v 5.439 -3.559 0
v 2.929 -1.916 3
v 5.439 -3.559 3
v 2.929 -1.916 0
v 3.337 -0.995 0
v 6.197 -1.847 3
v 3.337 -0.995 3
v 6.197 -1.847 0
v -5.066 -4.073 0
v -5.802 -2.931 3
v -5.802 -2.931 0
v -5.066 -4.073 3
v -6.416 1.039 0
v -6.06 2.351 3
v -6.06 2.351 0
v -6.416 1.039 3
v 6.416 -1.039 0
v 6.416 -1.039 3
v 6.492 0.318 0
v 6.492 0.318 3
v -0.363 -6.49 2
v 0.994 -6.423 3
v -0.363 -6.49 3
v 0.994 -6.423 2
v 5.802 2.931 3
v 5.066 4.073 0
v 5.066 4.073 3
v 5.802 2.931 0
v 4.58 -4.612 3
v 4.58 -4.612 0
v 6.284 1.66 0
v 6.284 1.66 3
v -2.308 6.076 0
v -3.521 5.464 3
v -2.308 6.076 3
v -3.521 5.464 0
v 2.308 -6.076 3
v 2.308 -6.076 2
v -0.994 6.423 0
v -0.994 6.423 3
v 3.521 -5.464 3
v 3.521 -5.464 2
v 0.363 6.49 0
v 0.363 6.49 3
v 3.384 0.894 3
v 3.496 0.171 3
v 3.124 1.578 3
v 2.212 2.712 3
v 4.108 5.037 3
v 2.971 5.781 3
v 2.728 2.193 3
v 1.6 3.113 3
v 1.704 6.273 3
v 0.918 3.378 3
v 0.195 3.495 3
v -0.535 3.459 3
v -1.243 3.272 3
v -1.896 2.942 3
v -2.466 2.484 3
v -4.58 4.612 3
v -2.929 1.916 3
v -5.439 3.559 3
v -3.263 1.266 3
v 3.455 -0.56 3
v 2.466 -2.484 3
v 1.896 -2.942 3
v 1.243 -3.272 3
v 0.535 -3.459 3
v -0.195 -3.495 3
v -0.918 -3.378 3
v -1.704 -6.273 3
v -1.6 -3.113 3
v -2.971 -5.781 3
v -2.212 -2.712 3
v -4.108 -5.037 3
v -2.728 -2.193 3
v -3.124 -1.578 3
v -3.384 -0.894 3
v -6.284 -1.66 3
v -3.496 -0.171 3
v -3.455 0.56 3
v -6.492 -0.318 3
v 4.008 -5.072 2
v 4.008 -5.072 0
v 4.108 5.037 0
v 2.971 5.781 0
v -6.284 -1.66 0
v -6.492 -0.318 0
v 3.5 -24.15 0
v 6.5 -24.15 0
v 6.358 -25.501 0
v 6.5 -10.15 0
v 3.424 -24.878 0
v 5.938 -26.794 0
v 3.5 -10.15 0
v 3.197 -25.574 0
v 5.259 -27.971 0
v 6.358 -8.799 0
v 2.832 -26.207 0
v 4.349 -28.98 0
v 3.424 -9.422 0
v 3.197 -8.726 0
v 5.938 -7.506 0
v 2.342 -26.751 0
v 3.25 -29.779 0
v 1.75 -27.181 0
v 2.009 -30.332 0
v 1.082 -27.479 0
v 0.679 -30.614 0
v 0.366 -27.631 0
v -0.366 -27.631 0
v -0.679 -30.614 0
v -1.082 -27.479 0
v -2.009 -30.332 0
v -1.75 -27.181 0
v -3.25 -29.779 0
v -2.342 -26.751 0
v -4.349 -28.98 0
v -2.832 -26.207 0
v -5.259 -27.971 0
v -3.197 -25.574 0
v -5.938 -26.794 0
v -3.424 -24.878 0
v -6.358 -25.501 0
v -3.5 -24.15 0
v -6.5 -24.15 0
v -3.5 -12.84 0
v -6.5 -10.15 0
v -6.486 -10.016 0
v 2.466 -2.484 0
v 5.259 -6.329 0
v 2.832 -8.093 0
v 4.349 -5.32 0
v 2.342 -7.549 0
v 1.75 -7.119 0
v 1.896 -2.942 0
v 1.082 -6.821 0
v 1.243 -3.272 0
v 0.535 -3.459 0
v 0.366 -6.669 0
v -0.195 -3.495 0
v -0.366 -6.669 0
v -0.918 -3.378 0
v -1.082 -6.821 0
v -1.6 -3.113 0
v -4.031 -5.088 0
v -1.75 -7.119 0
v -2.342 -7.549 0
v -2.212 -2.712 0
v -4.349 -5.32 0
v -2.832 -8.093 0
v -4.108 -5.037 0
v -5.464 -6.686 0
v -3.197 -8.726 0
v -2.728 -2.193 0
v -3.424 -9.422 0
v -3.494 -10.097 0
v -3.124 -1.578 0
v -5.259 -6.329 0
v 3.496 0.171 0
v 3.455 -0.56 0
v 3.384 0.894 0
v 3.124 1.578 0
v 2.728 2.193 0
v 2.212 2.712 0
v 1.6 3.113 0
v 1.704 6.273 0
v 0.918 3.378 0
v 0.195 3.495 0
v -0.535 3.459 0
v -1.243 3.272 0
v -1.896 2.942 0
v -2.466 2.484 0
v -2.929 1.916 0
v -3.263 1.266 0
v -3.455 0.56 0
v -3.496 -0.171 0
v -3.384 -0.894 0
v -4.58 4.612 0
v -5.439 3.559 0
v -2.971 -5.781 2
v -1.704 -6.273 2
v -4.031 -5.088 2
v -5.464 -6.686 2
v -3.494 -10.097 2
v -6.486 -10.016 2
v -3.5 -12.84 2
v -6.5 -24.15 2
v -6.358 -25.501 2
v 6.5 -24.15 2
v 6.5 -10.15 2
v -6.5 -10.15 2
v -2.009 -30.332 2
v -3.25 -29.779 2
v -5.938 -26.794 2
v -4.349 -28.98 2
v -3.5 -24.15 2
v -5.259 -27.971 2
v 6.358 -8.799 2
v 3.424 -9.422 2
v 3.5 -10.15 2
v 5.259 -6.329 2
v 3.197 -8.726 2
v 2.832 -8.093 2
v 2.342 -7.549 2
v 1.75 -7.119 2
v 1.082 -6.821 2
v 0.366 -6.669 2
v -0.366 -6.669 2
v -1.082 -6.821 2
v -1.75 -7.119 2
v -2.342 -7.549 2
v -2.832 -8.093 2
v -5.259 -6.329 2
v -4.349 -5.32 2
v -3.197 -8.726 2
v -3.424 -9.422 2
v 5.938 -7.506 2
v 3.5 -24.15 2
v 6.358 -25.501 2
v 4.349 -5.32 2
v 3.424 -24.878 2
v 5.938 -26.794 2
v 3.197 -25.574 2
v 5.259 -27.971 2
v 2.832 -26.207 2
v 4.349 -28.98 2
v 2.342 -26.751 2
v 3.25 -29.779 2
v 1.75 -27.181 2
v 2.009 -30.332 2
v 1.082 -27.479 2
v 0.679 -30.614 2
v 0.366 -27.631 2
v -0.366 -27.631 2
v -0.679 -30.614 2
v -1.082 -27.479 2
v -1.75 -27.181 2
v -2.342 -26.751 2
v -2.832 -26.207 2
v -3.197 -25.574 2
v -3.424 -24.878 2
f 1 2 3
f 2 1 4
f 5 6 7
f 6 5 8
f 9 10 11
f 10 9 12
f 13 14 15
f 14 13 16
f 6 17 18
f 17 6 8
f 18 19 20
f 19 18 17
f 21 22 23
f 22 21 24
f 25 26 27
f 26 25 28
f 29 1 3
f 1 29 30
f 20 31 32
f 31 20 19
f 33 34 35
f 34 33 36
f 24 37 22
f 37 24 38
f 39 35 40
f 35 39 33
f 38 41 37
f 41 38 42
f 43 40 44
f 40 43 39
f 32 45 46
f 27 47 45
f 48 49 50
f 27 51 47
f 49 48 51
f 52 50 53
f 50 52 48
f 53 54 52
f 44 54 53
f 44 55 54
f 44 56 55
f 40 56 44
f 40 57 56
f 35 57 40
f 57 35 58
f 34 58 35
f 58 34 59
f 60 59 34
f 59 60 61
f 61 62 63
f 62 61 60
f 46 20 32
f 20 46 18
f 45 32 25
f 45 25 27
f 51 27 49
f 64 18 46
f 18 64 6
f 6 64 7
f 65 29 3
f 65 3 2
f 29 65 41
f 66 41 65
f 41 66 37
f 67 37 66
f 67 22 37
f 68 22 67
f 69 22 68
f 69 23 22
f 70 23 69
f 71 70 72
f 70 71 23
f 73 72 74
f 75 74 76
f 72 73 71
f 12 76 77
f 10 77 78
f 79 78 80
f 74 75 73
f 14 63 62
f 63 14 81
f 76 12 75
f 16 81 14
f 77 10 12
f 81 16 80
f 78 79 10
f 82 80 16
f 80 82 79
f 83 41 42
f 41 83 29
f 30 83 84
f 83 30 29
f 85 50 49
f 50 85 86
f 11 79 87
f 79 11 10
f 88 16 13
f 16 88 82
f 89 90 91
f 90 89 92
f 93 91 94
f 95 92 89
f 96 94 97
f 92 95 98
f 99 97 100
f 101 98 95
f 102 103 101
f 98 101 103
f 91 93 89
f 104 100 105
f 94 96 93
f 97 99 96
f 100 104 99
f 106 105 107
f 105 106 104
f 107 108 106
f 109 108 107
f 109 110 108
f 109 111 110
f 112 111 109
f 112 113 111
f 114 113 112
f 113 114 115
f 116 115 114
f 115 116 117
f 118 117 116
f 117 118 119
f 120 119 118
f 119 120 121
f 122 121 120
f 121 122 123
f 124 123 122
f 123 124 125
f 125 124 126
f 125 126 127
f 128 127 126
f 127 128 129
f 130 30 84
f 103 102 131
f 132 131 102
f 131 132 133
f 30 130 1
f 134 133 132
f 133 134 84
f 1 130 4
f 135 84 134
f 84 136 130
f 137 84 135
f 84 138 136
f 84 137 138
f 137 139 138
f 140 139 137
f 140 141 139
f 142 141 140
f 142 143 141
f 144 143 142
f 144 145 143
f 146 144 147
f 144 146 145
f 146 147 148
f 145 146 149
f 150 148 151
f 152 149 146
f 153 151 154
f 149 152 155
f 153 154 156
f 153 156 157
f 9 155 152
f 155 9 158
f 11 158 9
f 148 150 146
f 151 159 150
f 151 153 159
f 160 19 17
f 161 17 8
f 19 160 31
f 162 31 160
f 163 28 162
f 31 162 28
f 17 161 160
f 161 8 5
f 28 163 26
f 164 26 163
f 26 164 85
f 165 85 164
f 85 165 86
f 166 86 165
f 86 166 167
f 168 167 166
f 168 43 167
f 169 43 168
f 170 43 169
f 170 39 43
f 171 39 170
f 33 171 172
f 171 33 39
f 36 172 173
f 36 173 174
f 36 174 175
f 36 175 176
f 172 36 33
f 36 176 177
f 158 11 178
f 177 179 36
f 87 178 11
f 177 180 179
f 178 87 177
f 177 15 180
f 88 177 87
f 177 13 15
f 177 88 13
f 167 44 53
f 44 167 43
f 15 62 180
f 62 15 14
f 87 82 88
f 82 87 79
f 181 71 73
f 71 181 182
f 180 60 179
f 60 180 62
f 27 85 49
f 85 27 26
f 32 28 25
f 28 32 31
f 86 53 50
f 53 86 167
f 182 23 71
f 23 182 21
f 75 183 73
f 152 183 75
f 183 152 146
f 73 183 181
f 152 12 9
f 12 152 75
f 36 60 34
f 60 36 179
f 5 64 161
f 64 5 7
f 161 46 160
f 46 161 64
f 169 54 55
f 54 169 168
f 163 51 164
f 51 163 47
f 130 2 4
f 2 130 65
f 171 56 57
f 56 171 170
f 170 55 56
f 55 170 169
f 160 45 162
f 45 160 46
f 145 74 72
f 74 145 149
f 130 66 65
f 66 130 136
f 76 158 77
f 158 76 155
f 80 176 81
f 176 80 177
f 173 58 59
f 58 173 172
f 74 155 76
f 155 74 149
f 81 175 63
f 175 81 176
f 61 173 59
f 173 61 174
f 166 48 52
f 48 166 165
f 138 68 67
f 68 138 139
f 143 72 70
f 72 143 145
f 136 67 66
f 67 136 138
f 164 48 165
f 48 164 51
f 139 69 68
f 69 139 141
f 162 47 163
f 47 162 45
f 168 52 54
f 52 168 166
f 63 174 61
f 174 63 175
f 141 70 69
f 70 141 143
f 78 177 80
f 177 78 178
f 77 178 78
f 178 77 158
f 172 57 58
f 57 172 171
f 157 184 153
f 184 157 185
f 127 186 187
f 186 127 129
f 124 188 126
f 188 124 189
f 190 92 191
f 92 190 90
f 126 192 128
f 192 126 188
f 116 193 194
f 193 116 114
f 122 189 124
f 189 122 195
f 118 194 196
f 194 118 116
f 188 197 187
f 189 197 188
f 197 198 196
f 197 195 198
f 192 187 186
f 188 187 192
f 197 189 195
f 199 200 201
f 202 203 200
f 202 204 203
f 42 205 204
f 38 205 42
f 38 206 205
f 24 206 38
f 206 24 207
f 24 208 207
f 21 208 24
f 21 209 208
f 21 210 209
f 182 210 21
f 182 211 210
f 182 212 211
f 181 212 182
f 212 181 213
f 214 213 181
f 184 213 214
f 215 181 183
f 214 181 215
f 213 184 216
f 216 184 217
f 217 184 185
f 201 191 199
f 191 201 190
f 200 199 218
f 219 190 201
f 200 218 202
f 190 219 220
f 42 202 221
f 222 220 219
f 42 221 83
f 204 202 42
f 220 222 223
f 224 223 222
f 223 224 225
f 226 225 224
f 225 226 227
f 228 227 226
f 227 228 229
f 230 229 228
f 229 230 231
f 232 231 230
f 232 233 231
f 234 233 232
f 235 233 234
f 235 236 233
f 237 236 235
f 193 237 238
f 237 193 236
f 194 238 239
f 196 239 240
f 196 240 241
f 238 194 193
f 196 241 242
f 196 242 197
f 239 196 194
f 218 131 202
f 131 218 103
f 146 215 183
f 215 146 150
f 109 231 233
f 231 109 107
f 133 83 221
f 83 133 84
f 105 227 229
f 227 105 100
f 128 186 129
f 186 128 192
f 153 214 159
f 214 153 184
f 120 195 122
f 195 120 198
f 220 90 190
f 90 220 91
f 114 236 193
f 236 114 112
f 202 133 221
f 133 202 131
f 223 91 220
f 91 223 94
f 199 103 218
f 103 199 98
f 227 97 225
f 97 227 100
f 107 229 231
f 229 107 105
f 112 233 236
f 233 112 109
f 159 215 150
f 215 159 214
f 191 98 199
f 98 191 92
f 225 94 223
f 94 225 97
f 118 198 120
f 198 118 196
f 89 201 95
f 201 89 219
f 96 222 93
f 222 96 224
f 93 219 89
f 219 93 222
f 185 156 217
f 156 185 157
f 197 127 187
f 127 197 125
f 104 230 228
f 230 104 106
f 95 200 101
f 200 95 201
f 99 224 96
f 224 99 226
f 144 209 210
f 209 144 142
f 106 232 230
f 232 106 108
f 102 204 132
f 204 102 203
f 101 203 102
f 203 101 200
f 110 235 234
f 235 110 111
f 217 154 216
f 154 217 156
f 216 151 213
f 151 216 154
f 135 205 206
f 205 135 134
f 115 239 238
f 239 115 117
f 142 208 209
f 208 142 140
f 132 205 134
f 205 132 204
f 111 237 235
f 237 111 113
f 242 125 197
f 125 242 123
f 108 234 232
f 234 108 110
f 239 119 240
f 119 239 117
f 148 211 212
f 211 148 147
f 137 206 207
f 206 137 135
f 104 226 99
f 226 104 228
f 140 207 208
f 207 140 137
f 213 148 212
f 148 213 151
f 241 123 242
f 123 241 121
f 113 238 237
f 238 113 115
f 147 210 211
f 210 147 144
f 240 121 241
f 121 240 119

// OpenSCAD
inner_diameter =  7;
outer_diameter = 13;
gap            = 16.6; //degrees
thickness      =  2;
thickness2     =  3;
length         = 21;
width          = 10;
$fn            = 30;


module wedge(diameter, height, degrees) {
    difference() {
        cylinder( d = diameter, h = height );
        translate([-0.5*diameter, -diameter, -height])
            cube([ diameter, diameter, 3*height ]);
        rotate([0, 0, degrees-90])
            translate([-4*diameter, -2*diameter, -height])
            cube([ 4*diameter, 4*diameter, 3*height ]);
    }
}

module ellipse( diameter, length, thickness ) {
    hull() {
        translate([ 0, 0, 0])
        cylinder(d = diameter, h = thickness);
    translate([ 0, length, 0])
        cylinder(d = diameter, h = thickness);
    }    
}

module hook1() {
    rotate([0, 0, -2*gap])
    difference() {
        cylinder( d = outer_diameter, h = thickness2 );
        translate([0, 0, -thickness2])
            cylinder( d = inner_diameter, h = 3*thickness2 );
        translate([0, 0, -1])
            wedge(2*outer_diameter, thickness2+2, gap);
    }
}

module hook2() {
    translate([0, -length, 0])
    difference() {
        ellipse( outer_diameter, length-inner_diameter, thickness );
        translate([0, 0, -1])
        ellipse( inner_diameter, length-inner_diameter, thickness+2 );
        translate([0, length-outer_diameter, -1])
            rotate([0, 0, 120])
                wedge( 2*outer_diameter, thickness+2, gap);
    }
}

hook1();
translate([0, -0.45*inner_diameter, 0]) hook2();
